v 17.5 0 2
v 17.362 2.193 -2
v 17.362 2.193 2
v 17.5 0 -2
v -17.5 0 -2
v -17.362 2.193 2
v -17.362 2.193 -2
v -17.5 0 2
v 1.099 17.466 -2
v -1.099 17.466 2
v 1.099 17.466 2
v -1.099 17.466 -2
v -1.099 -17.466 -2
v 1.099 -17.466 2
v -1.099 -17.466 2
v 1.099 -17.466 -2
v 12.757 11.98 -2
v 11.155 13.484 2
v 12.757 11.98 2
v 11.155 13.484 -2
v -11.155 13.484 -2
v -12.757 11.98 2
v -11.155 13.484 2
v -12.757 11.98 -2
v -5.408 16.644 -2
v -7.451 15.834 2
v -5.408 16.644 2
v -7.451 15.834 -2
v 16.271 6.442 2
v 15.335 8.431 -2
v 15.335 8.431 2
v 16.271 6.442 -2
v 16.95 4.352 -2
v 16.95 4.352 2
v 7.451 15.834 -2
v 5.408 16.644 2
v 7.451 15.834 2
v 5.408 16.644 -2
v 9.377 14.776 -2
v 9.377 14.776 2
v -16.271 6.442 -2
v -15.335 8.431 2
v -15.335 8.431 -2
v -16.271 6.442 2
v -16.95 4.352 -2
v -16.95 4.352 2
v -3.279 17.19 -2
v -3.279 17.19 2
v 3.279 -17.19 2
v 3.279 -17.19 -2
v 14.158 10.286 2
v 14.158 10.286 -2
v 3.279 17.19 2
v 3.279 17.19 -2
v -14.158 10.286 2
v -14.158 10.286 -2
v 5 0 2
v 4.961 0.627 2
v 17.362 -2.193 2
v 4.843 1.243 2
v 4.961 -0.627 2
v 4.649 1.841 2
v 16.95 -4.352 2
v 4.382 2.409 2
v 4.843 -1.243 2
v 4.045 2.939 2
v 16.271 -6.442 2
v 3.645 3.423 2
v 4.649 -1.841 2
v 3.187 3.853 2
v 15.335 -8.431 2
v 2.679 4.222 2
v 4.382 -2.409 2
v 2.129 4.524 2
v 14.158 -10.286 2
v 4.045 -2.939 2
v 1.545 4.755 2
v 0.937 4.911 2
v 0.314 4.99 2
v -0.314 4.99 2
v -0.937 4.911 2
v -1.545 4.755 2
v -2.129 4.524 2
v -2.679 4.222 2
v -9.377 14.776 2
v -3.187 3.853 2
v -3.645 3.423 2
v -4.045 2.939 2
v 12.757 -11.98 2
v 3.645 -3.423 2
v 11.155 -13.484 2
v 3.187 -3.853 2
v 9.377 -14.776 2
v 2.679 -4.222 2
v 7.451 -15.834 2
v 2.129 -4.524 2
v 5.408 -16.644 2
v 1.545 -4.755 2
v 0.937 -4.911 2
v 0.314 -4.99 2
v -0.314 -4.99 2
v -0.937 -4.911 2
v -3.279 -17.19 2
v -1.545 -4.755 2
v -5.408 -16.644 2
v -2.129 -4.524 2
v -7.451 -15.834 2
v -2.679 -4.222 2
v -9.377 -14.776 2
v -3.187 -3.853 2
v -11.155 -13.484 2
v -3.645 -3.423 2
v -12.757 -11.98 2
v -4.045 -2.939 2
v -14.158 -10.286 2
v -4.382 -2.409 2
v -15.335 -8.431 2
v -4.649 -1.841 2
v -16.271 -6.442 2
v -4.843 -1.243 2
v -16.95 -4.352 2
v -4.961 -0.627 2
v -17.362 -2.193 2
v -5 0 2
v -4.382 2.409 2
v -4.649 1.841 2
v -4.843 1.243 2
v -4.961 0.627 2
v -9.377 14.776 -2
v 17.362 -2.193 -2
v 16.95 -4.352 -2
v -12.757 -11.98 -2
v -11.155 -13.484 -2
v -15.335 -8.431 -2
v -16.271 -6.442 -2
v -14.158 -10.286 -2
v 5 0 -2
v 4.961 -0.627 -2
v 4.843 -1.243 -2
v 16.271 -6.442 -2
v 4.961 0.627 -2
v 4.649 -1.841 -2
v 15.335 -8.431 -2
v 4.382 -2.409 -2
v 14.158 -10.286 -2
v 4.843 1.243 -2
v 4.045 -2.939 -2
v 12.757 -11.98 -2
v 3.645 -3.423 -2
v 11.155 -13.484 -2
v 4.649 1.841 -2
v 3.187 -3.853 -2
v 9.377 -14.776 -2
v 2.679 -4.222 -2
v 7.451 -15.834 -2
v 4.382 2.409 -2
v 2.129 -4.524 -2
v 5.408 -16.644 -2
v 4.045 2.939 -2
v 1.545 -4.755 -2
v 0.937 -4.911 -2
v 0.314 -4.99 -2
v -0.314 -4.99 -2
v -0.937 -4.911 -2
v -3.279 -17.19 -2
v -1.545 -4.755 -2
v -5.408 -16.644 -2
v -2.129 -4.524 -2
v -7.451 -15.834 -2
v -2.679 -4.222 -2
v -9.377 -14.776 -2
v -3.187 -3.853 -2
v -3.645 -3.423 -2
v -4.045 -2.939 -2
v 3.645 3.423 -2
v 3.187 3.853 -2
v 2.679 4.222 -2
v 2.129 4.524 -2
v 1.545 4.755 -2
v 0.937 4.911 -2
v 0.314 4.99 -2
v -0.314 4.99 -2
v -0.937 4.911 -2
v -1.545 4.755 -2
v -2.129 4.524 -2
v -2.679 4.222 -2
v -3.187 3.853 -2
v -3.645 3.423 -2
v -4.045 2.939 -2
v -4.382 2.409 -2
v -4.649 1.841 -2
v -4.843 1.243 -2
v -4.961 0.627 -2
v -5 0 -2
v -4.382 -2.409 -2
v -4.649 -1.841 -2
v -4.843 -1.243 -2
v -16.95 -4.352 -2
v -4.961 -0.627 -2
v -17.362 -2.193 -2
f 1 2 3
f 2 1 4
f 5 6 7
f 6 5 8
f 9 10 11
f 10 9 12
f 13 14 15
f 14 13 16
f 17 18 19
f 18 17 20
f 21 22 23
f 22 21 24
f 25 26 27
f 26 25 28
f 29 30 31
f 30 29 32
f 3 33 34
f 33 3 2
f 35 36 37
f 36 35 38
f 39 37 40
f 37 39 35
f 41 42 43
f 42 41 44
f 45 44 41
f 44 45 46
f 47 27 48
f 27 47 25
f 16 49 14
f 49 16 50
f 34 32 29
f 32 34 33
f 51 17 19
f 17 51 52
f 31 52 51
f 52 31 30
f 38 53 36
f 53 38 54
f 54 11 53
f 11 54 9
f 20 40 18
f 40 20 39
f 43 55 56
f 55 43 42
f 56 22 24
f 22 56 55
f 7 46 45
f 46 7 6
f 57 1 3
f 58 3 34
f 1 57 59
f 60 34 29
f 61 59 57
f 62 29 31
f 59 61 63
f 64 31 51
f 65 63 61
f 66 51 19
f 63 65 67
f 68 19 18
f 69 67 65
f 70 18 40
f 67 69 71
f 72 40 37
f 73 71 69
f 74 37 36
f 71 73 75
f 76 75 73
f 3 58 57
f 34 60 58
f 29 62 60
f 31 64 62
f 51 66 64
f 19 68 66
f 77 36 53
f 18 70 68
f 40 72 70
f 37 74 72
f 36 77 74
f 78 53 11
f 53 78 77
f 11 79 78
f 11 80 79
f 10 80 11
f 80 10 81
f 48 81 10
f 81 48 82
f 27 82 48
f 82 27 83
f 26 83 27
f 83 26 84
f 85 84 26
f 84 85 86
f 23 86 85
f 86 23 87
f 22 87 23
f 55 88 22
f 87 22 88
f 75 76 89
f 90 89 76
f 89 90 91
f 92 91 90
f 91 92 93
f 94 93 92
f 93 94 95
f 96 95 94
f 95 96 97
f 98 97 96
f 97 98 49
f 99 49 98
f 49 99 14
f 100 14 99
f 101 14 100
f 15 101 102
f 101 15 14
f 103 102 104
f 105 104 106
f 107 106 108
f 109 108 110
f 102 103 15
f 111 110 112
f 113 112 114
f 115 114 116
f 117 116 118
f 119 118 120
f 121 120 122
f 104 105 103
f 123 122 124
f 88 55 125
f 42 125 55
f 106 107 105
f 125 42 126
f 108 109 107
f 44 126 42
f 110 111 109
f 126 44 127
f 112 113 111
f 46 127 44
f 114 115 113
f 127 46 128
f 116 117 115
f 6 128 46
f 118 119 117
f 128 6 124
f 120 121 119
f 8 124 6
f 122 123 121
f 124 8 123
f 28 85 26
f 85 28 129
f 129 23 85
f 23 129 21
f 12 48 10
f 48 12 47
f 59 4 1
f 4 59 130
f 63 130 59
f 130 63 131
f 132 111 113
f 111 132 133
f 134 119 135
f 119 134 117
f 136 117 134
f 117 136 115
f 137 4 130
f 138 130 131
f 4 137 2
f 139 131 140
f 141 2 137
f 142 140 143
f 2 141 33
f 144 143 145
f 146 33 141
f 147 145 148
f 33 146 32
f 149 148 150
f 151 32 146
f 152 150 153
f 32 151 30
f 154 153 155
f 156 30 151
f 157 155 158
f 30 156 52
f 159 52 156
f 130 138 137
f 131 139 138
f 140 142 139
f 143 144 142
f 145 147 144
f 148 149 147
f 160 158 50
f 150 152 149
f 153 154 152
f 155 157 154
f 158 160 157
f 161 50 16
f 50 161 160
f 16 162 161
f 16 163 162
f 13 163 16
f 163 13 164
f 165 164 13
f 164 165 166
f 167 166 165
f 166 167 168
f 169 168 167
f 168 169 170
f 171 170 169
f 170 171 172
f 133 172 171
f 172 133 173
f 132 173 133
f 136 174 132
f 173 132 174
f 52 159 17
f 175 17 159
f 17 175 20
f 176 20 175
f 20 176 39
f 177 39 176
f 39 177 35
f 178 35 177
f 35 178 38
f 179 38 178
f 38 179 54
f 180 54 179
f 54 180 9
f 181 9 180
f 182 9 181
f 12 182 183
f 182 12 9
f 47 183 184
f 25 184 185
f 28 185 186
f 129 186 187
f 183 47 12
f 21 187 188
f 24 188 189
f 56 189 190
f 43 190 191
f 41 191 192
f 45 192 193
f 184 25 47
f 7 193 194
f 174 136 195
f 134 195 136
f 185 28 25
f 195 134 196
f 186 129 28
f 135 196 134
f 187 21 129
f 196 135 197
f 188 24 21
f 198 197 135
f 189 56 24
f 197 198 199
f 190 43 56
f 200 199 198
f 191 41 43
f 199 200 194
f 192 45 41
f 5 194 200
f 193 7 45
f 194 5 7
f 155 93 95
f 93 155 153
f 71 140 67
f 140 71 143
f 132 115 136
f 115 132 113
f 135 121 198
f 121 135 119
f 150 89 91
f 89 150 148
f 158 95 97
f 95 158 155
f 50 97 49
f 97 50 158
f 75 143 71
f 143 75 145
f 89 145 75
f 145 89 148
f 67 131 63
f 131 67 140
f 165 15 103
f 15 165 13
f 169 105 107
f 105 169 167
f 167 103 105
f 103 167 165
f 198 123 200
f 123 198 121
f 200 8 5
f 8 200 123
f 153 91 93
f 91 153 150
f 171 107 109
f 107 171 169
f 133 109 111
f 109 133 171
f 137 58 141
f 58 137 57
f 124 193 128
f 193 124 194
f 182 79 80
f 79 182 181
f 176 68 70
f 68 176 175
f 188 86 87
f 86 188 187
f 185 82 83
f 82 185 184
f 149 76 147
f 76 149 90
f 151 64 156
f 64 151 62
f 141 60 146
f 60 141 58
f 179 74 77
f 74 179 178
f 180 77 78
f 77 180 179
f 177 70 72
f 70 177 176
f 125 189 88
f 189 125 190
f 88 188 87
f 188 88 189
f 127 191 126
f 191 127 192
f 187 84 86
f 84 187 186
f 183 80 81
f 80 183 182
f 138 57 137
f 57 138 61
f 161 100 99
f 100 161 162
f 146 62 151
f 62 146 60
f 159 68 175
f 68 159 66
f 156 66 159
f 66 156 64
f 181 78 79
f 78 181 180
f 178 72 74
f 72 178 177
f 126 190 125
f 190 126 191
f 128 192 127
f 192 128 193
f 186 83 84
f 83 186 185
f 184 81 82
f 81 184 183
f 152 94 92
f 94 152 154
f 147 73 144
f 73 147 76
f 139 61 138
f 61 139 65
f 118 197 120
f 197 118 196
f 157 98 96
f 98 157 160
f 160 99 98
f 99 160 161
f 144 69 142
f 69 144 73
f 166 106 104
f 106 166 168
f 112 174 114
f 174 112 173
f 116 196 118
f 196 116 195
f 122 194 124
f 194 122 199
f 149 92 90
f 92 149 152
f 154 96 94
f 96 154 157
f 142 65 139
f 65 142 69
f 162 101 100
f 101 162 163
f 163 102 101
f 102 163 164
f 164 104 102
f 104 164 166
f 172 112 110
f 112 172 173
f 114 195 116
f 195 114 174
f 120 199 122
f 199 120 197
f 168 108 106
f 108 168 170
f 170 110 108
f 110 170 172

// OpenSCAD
$fn = 50;


difference() {
	union() {
		translate(v = [0, 0, -2.0000000000]) {
			cylinder(h = 4, r = 17.5000000000);
		}
	}
	union() {
		translate(v = [0, 0, -100.0000000000]) {
			cylinder(h = 200, r = 5);
		}
	}
}
